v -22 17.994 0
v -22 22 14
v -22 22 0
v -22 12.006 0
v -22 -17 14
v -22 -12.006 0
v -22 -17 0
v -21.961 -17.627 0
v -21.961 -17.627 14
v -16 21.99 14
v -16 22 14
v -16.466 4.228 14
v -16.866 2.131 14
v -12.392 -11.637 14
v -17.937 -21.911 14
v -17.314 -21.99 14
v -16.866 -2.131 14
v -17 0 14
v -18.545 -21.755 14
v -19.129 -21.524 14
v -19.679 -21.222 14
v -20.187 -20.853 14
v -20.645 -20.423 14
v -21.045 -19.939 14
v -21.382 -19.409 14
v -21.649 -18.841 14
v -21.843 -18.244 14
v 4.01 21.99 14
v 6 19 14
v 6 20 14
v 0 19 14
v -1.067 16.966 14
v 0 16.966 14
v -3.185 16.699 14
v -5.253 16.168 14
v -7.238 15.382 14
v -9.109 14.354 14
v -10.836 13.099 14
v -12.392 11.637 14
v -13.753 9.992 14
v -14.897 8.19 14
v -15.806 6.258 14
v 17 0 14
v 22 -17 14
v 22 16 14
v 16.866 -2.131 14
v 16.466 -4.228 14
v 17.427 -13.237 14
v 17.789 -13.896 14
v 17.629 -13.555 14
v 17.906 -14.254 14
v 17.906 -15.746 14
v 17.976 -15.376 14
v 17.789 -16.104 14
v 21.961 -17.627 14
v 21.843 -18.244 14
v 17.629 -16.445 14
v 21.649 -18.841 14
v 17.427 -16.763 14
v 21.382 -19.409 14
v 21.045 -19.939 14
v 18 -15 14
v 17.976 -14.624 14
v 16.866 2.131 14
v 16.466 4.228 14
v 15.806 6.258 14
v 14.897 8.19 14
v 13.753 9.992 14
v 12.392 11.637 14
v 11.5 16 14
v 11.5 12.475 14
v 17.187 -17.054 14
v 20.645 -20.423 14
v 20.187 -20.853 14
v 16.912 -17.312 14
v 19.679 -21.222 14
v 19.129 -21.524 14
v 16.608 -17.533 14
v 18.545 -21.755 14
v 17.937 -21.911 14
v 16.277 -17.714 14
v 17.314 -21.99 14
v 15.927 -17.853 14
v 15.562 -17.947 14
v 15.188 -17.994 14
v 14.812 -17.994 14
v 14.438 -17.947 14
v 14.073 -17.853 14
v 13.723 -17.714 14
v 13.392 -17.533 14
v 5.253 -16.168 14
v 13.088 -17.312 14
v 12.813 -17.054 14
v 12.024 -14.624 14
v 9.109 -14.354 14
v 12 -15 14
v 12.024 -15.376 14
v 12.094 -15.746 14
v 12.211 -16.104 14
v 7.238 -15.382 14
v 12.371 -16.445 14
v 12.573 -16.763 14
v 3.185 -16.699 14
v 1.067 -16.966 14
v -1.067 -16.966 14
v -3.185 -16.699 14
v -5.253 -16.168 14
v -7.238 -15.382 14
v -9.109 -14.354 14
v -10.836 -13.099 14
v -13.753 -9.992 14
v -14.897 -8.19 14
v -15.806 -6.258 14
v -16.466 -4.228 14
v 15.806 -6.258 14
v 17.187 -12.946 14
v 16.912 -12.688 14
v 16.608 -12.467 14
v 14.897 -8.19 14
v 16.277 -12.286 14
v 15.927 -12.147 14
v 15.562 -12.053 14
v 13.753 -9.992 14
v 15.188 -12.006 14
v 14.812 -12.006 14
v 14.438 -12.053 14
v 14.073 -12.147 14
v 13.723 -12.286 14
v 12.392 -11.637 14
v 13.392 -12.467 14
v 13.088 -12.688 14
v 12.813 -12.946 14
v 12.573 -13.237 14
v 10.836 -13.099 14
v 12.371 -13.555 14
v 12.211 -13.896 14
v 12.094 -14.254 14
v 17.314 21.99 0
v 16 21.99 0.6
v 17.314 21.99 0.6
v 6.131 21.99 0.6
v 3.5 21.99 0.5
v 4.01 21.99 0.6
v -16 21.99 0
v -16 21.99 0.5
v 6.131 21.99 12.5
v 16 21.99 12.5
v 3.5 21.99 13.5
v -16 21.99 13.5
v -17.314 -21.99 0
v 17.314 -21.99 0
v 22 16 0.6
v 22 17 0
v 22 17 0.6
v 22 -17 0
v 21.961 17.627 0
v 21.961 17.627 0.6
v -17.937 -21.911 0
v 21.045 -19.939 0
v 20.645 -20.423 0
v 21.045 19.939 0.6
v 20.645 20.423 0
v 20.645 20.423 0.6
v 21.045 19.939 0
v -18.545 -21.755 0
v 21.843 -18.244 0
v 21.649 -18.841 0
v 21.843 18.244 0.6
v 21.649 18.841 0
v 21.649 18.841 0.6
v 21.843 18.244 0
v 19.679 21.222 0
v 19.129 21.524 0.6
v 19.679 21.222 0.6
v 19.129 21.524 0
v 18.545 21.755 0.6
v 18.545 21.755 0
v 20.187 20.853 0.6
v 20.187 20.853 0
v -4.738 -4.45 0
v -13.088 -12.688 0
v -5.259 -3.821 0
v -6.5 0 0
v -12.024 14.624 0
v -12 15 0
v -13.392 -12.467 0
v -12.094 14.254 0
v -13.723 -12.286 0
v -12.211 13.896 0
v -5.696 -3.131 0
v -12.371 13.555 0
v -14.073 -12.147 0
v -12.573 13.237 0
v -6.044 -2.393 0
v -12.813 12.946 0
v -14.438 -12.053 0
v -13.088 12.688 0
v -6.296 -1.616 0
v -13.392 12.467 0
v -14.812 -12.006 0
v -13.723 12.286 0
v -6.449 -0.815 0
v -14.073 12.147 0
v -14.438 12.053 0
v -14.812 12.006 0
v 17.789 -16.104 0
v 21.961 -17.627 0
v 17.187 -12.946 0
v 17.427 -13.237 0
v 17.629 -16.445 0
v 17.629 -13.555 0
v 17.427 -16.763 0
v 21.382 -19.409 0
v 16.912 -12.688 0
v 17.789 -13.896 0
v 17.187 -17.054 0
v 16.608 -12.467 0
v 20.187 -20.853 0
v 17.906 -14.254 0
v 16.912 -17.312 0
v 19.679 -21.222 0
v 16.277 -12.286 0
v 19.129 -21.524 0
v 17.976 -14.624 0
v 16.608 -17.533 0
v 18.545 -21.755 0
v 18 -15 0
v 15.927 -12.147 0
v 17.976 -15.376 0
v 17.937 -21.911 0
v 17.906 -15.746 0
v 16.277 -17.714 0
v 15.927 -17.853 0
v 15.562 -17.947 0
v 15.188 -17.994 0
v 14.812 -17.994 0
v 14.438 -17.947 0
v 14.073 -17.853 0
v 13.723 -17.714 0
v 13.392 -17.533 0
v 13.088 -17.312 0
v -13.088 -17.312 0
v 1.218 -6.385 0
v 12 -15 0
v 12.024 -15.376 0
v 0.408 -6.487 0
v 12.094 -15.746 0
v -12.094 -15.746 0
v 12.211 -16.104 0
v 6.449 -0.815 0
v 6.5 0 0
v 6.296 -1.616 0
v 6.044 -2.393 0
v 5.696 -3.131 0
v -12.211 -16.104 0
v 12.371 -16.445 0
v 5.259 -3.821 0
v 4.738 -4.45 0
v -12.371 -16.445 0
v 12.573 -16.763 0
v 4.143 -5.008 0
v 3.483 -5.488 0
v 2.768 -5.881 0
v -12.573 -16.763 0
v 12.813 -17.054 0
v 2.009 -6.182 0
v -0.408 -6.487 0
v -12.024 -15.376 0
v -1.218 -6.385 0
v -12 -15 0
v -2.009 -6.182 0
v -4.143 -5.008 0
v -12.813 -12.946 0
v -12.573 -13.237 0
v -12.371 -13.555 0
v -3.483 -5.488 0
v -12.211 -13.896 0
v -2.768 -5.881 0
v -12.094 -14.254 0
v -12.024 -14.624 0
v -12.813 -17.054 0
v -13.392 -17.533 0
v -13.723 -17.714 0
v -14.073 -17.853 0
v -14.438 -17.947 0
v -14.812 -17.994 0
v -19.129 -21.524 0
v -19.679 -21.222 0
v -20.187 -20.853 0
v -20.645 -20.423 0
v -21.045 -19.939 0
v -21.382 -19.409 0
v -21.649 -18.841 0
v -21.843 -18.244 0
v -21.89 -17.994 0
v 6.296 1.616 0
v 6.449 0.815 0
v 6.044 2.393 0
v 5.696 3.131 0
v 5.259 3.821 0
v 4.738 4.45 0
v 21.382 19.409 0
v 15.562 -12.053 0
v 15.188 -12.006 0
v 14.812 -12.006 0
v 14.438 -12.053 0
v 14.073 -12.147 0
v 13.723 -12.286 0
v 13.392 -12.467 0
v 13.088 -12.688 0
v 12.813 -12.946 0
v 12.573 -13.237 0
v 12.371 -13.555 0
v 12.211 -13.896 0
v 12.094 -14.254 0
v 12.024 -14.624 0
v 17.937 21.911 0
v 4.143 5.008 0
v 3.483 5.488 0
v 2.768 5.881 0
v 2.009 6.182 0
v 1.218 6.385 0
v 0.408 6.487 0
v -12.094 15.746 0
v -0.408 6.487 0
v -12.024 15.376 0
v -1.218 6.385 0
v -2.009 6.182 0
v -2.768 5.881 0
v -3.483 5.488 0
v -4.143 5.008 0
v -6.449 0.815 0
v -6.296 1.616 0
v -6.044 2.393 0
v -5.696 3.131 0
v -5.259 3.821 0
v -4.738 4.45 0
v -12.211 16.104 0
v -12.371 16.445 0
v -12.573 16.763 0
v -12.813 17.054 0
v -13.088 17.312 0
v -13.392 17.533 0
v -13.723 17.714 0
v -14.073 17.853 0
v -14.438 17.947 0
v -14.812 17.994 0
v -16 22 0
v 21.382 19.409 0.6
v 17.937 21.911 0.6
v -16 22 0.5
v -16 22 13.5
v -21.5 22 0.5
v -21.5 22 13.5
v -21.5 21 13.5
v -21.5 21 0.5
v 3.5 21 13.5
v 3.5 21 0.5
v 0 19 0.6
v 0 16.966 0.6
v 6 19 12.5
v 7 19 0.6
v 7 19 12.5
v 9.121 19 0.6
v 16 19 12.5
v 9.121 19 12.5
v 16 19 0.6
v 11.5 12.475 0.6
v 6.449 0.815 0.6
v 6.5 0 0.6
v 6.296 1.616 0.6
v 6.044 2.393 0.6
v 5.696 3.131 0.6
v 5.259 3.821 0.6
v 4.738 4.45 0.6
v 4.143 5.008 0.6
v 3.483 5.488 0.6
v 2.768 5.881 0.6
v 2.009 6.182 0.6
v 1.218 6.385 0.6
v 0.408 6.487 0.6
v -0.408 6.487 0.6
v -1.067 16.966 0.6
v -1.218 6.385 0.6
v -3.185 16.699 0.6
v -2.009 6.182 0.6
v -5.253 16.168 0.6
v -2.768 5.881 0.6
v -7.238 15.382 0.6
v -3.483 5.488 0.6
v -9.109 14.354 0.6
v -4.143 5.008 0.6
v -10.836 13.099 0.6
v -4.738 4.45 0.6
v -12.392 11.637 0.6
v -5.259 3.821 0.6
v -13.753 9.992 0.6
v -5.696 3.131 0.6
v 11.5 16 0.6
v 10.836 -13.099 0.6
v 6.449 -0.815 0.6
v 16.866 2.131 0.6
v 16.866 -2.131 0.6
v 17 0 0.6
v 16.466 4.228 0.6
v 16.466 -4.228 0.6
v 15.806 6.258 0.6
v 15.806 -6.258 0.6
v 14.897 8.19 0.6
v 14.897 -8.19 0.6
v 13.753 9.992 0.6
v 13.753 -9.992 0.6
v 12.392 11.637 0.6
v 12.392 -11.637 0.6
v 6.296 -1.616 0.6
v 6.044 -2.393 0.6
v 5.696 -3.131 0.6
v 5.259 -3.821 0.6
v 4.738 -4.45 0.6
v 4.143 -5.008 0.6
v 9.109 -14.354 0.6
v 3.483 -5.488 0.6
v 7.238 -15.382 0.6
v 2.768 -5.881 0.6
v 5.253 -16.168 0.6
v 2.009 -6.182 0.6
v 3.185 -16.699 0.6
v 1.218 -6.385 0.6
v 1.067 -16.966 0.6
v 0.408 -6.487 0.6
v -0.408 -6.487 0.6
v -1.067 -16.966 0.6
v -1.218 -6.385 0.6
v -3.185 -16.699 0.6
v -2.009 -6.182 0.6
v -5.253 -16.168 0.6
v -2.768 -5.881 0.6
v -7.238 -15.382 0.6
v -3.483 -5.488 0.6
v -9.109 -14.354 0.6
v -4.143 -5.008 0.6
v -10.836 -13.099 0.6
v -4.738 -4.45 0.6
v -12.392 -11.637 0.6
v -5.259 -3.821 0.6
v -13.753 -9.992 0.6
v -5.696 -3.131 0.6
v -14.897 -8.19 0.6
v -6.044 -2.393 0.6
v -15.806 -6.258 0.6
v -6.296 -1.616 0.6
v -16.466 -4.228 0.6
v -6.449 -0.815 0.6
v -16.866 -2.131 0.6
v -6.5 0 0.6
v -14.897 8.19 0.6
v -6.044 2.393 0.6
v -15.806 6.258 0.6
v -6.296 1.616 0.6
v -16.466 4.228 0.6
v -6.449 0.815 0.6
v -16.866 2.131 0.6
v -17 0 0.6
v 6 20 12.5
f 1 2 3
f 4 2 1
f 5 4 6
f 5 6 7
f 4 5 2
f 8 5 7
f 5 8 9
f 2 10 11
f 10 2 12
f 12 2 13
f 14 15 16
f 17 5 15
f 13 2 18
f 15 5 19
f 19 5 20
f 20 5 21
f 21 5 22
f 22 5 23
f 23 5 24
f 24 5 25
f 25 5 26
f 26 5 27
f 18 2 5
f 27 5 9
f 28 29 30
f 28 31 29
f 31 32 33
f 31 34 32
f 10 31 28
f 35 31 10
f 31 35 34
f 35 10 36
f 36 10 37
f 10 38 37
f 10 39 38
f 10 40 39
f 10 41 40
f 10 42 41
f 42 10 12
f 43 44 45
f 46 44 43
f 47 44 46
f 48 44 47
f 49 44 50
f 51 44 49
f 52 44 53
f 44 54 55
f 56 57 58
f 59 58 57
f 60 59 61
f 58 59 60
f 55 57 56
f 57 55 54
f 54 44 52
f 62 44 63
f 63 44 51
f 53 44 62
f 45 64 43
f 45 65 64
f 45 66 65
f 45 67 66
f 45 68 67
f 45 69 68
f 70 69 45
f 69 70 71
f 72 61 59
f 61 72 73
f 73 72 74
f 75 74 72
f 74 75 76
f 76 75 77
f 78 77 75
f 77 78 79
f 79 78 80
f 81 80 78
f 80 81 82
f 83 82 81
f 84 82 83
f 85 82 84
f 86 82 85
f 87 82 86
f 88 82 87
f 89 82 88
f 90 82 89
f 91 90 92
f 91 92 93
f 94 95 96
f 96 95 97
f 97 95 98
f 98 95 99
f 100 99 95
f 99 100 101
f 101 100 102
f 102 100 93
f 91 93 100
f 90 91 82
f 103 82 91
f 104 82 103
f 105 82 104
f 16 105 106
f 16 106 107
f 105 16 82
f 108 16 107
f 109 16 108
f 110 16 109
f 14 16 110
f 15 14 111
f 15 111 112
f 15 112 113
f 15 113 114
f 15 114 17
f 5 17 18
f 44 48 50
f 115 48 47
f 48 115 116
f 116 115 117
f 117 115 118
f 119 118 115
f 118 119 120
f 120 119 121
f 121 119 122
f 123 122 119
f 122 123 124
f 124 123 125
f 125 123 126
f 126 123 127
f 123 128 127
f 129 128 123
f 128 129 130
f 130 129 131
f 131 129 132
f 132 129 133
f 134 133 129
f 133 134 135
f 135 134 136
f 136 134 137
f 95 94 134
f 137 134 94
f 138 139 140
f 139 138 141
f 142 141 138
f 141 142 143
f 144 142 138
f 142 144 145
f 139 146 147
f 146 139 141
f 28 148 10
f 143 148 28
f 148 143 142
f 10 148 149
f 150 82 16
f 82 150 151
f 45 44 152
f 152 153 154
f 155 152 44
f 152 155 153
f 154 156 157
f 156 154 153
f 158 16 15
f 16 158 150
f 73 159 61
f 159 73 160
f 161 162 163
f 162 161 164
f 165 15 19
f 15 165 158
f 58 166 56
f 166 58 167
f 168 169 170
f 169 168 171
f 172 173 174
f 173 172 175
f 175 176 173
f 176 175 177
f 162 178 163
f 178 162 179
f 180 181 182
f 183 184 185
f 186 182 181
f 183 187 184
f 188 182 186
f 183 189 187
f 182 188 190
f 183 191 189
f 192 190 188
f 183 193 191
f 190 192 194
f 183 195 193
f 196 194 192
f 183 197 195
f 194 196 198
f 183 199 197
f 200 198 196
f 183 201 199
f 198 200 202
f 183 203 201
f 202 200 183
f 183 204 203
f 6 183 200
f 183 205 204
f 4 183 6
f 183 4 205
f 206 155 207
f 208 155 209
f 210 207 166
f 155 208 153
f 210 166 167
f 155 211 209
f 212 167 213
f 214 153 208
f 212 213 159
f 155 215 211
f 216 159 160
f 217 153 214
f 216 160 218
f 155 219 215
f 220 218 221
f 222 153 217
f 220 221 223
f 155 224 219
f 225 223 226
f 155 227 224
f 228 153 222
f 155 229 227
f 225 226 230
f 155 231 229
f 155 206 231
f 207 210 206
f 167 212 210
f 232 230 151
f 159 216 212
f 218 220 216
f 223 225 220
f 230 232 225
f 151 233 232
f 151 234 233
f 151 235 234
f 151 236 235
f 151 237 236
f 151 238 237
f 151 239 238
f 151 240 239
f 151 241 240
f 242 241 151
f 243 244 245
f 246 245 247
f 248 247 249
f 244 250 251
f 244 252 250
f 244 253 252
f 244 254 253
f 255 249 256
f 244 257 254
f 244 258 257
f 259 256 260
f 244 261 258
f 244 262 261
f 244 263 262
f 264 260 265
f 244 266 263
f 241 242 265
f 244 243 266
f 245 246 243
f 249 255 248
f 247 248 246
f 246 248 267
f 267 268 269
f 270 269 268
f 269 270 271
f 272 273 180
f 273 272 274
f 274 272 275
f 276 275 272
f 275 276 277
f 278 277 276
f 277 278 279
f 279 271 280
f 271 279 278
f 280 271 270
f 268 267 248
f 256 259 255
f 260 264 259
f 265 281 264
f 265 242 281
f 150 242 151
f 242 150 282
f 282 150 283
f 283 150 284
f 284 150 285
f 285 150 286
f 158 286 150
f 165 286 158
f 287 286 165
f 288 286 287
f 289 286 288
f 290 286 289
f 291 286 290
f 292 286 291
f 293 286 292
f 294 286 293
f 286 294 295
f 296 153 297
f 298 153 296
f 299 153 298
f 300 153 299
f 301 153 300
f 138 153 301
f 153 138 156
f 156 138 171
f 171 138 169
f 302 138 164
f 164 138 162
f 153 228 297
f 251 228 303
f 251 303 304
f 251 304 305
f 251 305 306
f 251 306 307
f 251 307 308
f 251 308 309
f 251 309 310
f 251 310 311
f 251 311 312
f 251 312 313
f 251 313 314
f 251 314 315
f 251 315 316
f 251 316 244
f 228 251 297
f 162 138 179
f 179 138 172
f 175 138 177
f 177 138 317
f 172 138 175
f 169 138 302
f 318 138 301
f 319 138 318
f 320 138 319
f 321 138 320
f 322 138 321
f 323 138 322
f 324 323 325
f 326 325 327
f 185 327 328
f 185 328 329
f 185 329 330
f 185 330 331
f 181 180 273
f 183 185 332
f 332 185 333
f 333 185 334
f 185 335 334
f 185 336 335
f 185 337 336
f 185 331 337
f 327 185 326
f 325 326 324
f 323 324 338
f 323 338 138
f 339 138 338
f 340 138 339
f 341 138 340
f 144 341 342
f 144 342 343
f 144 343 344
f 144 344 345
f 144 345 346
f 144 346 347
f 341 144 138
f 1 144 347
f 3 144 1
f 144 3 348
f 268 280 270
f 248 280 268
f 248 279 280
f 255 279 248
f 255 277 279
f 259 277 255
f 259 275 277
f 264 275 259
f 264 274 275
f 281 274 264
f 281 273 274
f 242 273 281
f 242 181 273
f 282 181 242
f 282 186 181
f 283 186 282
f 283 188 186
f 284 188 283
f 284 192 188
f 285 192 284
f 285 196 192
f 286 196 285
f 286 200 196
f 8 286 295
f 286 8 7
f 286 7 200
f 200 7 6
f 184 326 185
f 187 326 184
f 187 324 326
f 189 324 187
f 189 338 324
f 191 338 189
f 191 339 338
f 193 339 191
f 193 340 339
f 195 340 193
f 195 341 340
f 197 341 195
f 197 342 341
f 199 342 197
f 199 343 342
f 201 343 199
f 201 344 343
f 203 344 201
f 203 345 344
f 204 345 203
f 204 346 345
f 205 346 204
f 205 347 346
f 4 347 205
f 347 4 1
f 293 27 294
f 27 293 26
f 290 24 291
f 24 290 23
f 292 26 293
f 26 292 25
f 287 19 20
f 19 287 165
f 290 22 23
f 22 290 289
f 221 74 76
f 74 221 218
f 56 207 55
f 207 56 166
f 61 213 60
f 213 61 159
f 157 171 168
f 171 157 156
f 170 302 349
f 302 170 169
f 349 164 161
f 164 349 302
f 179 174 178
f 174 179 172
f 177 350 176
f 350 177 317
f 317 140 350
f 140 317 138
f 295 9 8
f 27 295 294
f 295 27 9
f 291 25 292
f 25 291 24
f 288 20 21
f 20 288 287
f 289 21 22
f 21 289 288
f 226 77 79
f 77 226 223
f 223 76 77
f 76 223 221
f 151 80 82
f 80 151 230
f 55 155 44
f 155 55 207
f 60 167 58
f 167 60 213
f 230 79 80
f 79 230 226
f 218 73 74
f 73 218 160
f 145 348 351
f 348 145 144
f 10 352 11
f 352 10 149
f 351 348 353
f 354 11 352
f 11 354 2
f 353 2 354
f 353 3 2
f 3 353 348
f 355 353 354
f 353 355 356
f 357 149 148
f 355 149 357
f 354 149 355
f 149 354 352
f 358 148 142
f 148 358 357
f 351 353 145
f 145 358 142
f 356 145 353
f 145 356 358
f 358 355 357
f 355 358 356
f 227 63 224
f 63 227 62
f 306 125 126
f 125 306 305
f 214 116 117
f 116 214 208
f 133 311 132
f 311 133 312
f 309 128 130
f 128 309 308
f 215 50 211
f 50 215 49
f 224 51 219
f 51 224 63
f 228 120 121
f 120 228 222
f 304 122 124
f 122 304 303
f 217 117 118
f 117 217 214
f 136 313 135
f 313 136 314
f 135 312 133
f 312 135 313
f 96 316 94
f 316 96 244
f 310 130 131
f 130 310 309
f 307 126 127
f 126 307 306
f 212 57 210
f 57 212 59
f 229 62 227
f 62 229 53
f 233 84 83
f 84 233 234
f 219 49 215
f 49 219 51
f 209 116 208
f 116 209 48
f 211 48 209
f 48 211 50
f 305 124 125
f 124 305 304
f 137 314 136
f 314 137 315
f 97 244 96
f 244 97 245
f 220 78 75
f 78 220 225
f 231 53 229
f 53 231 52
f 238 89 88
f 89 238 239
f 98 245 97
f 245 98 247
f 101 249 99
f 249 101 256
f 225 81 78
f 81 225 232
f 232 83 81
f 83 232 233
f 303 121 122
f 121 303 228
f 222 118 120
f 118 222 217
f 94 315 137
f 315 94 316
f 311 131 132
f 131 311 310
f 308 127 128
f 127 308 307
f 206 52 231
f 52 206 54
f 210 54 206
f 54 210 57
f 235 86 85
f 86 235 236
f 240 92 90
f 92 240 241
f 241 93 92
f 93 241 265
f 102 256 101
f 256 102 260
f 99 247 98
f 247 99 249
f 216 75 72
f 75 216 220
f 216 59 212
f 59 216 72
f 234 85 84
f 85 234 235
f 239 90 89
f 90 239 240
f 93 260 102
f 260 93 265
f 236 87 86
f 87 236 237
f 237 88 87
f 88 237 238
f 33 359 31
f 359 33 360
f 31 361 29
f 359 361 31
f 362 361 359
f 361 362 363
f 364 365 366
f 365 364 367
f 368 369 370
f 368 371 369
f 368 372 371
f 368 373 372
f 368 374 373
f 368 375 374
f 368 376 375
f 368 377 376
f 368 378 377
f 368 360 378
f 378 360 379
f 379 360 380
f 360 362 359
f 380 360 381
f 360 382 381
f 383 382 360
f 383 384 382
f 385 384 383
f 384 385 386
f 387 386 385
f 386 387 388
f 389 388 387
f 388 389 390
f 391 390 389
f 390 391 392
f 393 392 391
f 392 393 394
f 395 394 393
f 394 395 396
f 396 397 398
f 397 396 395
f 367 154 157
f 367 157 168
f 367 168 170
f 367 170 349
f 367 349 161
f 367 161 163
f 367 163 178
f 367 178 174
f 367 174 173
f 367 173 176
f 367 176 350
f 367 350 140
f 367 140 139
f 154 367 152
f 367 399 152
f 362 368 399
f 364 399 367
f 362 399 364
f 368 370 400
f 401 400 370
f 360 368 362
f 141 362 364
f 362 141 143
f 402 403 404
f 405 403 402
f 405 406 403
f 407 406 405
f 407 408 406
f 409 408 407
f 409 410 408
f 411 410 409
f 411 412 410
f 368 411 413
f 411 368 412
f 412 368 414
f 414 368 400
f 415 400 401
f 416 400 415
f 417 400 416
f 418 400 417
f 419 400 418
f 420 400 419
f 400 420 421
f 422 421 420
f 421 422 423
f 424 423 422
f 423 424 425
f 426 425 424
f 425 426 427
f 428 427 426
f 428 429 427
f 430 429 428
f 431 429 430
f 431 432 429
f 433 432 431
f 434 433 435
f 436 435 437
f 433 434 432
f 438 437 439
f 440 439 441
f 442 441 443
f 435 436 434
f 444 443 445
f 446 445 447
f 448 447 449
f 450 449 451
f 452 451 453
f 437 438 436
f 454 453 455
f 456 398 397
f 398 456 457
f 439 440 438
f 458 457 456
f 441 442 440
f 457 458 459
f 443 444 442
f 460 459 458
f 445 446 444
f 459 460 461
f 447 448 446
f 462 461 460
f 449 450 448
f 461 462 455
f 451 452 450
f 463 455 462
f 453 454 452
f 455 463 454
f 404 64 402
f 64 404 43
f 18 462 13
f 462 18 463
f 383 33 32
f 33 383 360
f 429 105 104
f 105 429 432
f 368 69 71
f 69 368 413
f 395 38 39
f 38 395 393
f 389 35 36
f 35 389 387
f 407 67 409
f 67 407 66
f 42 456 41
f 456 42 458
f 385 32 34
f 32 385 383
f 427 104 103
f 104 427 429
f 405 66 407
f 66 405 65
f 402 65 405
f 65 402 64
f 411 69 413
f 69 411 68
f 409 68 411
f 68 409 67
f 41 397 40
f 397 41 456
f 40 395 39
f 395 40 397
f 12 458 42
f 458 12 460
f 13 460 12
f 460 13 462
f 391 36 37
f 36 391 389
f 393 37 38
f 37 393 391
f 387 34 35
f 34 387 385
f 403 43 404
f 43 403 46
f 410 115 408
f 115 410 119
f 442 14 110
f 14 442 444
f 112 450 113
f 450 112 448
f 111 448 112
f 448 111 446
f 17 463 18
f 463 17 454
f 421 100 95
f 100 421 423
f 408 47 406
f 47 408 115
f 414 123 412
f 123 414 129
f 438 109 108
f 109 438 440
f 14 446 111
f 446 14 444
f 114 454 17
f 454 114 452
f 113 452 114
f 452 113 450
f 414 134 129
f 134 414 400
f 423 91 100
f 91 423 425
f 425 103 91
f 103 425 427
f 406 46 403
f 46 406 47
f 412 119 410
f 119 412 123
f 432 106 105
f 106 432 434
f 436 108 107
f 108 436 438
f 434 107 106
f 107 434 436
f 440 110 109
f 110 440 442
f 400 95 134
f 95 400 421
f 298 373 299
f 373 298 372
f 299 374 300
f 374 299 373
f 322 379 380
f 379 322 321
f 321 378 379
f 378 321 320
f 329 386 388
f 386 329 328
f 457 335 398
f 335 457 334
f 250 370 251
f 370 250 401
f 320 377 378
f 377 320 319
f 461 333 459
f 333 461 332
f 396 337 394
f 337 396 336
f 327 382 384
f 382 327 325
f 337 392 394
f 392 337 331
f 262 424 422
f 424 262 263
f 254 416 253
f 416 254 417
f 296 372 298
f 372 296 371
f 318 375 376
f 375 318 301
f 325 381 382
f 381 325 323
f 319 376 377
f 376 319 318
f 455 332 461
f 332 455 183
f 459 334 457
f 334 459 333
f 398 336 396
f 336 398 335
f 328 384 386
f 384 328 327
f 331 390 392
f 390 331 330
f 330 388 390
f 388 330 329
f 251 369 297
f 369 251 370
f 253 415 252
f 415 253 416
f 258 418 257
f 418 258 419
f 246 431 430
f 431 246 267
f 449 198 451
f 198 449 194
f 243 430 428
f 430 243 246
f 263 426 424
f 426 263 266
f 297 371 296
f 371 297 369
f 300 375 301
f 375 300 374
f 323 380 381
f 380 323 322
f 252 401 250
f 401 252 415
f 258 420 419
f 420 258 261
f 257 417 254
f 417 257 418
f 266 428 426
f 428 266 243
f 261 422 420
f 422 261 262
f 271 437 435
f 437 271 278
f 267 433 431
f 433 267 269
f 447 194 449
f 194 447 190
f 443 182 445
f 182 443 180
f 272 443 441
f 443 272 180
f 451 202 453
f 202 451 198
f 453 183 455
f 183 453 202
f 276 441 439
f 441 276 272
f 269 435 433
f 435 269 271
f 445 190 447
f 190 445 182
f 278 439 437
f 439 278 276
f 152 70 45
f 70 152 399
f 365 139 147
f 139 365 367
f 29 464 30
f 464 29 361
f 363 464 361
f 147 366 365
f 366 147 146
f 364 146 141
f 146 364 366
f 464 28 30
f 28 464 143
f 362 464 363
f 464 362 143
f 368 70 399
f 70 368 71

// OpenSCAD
$fn = 50;


difference() {
	union() {
		hull() {
			translate(v = [-17.0000000000, 17.0000000000, 0]) {
				cylinder(h = 14, r = 5);
			}
			translate(v = [17.0000000000, 17.0000000000, 0]) {
				cylinder(h = 14, r = 5);
			}
			translate(v = [-17.0000000000, -17.0000000000, 0]) {
				cylinder(h = 14, r = 5);
			}
			translate(v = [17.0000000000, -17.0000000000, 0]) {
				cylinder(h = 14, r = 5);
			}
		}
		translate(v = [-22.0000000000, 16.0000000000, 0]) {
			cube(size = [6, 6, 14]);
		}
	}
	union() {
		translate(v = [-22.5000000000, -15.0000000000, -250.0000000000]) {
			rotate(a = [0, 0, 0]) {
				difference() {
					union() {
						hull() {
							translate(v = [7.5000000000, 0, 0]) {
								cylinder(h = 250, r = 3.0000000000, r1 = 3.0000000000, r2 = 3.0000000000);
							}
							translate(v = [-7.5000000000, 0, 0]) {
								cylinder(h = 250, r = 3.0000000000, r1 = 3.0000000000, r2 = 3.0000000000);
							}
						}
					}
					union();
				}
			}
		}
		translate(v = [-22.5000000000, 15.0000000000, -250.0000000000]) {
			rotate(a = [0, 0, 0]) {
				difference() {
					union() {
						hull() {
							translate(v = [7.5000000000, 0, 0]) {
								cylinder(h = 250, r = 3.0000000000, r1 = 3.0000000000, r2 = 3.0000000000);
							}
							translate(v = [-7.5000000000, 0, 0]) {
								cylinder(h = 250, r = 3.0000000000, r1 = 3.0000000000, r2 = 3.0000000000);
							}
						}
					}
					union();
				}
			}
		}
		translate(v = [-21.5000000000, 21.0000000000, 0.5000000000]) {
			cube(size = [25, 1, 13.0000000000]);
		}
		translate(v = [15.0000000000, -15.0000000000, -50.0000000000]) {
			cylinder(h = 100, r = 3.0000000000);
		}
		translate(v = [0.0000000000, 11.0000000000, 0.6000000000]) {
			cube(size = [11, 8, 16.4000000000]);
		}
		translate(v = [0, 0, 0.6000000000]) {
			cylinder(h = 16.4000000000, r = 17.0000000000);
		}
		translate(v = [0, 0, -7.0000000000]) {
			cylinder(h = 14, r = 6.5000000000);
		}
		translate(v = [0.0000000000, 16.0000000000, 0.6000000000]) {
			cube(size = [22.0000000000, 3, 16.4000000000]);
		}
		translate(v = [16.0000000000, 16.0000000000, 0.6000000000]) {
			cube(size = [6, 6, 16.4000000000]);
		}
		translate(v = [6.0000000000, 16.0000000000, 12.5000000000]) {
			cube(size = [16, 6, 1.5000000000]);
		}
		translate(v = [3.2500000000, 22.7500000000, 0.6000000000]) {
			rotate(a = [0, 0, -45]) {
				cube(size = [7.5000000000, 1.5000000000, 16.4000000000]);
			}
		}
		translate(v = [2.5000000000, 11.0000000000, 0.6000000000]) {
			cube(size = [9.0000000000, 5, 13.4000000000]);
		}
	}
}
